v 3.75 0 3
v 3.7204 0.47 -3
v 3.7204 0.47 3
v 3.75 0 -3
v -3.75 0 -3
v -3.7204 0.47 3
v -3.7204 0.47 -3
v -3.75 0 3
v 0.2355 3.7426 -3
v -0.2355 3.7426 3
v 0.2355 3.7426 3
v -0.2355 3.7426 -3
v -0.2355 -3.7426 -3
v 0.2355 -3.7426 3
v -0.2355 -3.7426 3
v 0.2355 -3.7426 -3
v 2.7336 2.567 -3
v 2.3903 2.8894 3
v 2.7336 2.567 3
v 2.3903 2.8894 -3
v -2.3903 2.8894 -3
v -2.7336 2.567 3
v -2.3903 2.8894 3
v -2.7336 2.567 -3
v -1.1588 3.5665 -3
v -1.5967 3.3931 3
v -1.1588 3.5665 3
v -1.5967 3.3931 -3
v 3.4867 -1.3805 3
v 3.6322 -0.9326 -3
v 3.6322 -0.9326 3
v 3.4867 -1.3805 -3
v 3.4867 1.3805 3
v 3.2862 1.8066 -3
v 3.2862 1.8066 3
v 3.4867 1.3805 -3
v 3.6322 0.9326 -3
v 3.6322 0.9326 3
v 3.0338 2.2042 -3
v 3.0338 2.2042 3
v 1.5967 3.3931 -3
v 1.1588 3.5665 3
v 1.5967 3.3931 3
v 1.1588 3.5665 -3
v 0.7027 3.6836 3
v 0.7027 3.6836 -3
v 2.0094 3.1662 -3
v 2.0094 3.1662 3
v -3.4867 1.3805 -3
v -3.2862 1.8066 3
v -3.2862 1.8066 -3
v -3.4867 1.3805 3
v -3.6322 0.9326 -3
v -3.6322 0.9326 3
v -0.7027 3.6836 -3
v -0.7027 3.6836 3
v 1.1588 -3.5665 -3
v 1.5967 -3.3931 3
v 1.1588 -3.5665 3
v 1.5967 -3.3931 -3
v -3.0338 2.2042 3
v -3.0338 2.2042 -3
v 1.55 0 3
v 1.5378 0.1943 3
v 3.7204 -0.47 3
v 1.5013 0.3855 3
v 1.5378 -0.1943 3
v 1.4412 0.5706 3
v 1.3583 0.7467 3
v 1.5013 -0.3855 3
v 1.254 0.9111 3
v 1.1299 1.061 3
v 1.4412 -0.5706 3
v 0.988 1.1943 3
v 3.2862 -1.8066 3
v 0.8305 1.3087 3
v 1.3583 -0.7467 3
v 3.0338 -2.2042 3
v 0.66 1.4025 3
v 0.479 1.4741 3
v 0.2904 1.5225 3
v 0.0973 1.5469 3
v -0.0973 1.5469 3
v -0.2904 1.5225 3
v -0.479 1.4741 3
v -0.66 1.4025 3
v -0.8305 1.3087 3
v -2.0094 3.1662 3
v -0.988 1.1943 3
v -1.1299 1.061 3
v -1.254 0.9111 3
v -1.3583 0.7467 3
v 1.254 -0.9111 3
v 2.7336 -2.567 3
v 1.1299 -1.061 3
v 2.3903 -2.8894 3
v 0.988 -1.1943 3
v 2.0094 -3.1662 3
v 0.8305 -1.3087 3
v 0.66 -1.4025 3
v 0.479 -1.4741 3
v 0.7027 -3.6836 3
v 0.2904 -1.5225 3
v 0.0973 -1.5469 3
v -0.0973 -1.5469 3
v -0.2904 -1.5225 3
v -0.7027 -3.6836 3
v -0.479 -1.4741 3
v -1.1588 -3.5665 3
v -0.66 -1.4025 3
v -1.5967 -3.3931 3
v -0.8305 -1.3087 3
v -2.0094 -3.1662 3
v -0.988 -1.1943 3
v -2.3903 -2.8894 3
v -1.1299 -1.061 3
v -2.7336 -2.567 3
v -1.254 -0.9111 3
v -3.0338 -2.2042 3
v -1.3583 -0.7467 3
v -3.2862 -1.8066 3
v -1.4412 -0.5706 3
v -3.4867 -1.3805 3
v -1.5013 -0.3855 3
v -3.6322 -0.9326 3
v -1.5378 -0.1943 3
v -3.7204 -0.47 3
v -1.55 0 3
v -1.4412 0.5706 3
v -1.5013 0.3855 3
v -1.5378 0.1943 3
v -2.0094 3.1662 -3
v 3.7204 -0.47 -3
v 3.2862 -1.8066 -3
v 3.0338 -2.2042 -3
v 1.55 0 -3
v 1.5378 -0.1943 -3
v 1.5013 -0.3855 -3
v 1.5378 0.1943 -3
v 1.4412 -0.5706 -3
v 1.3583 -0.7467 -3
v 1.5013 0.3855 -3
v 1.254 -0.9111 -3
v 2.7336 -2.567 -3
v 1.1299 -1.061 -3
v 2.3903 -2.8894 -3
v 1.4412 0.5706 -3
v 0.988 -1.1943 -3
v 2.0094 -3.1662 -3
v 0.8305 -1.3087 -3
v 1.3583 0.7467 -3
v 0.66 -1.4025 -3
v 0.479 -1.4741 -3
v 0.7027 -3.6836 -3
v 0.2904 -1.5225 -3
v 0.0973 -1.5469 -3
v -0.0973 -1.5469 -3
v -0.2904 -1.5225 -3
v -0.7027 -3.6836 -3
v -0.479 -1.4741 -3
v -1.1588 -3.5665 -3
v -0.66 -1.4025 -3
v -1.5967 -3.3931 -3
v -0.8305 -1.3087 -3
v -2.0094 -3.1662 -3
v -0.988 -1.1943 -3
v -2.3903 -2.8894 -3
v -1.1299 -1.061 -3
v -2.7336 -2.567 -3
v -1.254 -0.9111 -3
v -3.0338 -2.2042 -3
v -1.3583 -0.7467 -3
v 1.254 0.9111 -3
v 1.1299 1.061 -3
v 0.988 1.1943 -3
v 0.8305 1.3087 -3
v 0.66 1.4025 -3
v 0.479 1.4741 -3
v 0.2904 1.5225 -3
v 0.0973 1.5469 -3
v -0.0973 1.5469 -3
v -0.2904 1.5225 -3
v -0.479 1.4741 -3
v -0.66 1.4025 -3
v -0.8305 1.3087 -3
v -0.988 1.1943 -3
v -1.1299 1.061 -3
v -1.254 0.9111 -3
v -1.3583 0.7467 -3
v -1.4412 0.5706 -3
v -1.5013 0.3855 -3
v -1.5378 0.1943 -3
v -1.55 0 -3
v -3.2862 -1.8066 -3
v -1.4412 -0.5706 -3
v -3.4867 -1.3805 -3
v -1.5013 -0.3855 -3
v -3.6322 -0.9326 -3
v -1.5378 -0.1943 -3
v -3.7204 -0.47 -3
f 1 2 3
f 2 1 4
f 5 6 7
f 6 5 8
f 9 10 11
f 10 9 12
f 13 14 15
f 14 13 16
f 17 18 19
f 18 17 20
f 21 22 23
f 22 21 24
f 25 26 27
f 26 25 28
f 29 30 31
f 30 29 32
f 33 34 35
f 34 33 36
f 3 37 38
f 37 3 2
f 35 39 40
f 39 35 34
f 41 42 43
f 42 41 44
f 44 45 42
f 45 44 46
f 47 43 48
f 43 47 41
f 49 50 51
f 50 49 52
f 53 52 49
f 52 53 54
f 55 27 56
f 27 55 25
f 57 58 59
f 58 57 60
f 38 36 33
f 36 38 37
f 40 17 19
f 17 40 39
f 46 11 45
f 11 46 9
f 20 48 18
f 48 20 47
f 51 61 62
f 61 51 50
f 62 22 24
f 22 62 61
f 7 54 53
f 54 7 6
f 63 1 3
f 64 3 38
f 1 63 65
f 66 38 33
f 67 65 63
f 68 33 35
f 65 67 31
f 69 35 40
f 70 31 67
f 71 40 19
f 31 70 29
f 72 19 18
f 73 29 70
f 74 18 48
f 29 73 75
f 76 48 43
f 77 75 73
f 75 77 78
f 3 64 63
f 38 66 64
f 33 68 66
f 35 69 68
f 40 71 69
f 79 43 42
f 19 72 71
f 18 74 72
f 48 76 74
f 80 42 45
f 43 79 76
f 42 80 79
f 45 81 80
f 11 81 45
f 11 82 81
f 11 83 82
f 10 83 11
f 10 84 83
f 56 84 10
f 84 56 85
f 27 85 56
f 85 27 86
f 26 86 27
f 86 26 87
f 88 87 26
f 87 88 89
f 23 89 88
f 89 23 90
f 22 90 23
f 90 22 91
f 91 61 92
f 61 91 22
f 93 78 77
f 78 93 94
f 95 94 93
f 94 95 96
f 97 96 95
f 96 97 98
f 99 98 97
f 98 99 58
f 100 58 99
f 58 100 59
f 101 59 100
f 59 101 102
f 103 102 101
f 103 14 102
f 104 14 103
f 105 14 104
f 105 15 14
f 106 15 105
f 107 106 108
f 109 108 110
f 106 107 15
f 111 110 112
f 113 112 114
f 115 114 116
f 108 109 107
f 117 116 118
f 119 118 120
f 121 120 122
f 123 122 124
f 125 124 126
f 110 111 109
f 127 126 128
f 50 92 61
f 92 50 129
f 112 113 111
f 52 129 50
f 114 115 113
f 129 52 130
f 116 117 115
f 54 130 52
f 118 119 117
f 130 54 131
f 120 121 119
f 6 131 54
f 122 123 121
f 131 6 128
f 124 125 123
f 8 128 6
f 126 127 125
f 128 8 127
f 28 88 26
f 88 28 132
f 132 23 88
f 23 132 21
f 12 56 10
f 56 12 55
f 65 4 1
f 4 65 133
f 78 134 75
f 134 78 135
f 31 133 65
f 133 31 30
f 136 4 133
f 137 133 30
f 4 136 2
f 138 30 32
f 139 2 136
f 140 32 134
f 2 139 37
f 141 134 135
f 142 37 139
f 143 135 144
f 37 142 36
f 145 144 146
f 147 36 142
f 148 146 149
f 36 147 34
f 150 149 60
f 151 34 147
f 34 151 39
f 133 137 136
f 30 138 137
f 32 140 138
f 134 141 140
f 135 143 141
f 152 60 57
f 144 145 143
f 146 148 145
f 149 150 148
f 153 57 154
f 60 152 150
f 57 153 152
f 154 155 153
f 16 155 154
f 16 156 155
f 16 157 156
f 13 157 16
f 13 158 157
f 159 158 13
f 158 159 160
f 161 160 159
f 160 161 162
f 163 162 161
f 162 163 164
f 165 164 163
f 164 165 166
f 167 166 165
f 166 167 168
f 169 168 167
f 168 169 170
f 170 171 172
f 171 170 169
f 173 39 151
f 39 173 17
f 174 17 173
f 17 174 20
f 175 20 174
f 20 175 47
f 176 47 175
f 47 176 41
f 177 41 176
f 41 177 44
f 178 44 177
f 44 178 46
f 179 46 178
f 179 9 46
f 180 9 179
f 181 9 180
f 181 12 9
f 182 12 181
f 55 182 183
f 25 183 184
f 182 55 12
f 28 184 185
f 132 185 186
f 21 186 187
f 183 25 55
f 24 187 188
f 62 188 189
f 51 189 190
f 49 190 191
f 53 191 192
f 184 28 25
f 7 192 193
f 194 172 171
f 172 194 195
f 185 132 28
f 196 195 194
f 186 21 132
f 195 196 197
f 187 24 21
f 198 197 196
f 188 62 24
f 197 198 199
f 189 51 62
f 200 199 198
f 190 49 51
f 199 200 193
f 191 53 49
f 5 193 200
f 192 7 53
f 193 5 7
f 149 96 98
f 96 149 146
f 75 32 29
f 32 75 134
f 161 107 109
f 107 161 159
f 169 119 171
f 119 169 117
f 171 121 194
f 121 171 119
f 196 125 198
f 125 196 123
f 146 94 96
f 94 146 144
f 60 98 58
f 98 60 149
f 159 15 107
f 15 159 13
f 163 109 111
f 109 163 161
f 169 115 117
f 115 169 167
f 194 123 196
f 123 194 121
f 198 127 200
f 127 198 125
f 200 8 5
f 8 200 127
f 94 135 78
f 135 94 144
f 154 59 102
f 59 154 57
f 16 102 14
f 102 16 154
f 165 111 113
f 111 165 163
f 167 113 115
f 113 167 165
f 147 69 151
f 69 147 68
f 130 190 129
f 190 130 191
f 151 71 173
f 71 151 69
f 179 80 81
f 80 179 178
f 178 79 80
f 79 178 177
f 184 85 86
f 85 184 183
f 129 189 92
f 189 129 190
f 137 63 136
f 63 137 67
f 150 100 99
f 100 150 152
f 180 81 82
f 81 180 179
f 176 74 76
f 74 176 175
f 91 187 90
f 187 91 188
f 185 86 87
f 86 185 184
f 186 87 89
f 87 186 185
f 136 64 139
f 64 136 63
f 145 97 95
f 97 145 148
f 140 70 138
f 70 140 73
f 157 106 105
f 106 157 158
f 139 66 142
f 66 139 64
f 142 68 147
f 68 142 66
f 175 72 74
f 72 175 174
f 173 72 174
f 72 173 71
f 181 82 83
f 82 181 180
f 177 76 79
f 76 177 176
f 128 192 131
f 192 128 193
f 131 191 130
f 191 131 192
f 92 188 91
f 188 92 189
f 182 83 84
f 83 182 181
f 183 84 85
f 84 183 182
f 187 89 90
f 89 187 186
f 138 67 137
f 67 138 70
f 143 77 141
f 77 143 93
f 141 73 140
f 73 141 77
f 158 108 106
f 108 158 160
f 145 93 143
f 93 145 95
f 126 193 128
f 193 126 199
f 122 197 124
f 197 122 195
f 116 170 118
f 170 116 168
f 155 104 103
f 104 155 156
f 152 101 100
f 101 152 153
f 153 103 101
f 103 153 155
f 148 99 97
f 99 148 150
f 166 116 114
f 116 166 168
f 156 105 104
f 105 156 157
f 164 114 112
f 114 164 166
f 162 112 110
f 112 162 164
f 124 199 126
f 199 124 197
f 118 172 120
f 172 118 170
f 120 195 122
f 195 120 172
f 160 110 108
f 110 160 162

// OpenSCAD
$fn = 50;


difference() {
	union() {
		translate(v = [0, 0, -3.0000000000]) {
			cylinder(h = 6, r = 3.7500000000);
		}
	}
	union() {
		translate(v = [0, 0, -100.0000000000]) {
			cylinder(h = 200, r = 1.5500000000);
		}
	}
}
